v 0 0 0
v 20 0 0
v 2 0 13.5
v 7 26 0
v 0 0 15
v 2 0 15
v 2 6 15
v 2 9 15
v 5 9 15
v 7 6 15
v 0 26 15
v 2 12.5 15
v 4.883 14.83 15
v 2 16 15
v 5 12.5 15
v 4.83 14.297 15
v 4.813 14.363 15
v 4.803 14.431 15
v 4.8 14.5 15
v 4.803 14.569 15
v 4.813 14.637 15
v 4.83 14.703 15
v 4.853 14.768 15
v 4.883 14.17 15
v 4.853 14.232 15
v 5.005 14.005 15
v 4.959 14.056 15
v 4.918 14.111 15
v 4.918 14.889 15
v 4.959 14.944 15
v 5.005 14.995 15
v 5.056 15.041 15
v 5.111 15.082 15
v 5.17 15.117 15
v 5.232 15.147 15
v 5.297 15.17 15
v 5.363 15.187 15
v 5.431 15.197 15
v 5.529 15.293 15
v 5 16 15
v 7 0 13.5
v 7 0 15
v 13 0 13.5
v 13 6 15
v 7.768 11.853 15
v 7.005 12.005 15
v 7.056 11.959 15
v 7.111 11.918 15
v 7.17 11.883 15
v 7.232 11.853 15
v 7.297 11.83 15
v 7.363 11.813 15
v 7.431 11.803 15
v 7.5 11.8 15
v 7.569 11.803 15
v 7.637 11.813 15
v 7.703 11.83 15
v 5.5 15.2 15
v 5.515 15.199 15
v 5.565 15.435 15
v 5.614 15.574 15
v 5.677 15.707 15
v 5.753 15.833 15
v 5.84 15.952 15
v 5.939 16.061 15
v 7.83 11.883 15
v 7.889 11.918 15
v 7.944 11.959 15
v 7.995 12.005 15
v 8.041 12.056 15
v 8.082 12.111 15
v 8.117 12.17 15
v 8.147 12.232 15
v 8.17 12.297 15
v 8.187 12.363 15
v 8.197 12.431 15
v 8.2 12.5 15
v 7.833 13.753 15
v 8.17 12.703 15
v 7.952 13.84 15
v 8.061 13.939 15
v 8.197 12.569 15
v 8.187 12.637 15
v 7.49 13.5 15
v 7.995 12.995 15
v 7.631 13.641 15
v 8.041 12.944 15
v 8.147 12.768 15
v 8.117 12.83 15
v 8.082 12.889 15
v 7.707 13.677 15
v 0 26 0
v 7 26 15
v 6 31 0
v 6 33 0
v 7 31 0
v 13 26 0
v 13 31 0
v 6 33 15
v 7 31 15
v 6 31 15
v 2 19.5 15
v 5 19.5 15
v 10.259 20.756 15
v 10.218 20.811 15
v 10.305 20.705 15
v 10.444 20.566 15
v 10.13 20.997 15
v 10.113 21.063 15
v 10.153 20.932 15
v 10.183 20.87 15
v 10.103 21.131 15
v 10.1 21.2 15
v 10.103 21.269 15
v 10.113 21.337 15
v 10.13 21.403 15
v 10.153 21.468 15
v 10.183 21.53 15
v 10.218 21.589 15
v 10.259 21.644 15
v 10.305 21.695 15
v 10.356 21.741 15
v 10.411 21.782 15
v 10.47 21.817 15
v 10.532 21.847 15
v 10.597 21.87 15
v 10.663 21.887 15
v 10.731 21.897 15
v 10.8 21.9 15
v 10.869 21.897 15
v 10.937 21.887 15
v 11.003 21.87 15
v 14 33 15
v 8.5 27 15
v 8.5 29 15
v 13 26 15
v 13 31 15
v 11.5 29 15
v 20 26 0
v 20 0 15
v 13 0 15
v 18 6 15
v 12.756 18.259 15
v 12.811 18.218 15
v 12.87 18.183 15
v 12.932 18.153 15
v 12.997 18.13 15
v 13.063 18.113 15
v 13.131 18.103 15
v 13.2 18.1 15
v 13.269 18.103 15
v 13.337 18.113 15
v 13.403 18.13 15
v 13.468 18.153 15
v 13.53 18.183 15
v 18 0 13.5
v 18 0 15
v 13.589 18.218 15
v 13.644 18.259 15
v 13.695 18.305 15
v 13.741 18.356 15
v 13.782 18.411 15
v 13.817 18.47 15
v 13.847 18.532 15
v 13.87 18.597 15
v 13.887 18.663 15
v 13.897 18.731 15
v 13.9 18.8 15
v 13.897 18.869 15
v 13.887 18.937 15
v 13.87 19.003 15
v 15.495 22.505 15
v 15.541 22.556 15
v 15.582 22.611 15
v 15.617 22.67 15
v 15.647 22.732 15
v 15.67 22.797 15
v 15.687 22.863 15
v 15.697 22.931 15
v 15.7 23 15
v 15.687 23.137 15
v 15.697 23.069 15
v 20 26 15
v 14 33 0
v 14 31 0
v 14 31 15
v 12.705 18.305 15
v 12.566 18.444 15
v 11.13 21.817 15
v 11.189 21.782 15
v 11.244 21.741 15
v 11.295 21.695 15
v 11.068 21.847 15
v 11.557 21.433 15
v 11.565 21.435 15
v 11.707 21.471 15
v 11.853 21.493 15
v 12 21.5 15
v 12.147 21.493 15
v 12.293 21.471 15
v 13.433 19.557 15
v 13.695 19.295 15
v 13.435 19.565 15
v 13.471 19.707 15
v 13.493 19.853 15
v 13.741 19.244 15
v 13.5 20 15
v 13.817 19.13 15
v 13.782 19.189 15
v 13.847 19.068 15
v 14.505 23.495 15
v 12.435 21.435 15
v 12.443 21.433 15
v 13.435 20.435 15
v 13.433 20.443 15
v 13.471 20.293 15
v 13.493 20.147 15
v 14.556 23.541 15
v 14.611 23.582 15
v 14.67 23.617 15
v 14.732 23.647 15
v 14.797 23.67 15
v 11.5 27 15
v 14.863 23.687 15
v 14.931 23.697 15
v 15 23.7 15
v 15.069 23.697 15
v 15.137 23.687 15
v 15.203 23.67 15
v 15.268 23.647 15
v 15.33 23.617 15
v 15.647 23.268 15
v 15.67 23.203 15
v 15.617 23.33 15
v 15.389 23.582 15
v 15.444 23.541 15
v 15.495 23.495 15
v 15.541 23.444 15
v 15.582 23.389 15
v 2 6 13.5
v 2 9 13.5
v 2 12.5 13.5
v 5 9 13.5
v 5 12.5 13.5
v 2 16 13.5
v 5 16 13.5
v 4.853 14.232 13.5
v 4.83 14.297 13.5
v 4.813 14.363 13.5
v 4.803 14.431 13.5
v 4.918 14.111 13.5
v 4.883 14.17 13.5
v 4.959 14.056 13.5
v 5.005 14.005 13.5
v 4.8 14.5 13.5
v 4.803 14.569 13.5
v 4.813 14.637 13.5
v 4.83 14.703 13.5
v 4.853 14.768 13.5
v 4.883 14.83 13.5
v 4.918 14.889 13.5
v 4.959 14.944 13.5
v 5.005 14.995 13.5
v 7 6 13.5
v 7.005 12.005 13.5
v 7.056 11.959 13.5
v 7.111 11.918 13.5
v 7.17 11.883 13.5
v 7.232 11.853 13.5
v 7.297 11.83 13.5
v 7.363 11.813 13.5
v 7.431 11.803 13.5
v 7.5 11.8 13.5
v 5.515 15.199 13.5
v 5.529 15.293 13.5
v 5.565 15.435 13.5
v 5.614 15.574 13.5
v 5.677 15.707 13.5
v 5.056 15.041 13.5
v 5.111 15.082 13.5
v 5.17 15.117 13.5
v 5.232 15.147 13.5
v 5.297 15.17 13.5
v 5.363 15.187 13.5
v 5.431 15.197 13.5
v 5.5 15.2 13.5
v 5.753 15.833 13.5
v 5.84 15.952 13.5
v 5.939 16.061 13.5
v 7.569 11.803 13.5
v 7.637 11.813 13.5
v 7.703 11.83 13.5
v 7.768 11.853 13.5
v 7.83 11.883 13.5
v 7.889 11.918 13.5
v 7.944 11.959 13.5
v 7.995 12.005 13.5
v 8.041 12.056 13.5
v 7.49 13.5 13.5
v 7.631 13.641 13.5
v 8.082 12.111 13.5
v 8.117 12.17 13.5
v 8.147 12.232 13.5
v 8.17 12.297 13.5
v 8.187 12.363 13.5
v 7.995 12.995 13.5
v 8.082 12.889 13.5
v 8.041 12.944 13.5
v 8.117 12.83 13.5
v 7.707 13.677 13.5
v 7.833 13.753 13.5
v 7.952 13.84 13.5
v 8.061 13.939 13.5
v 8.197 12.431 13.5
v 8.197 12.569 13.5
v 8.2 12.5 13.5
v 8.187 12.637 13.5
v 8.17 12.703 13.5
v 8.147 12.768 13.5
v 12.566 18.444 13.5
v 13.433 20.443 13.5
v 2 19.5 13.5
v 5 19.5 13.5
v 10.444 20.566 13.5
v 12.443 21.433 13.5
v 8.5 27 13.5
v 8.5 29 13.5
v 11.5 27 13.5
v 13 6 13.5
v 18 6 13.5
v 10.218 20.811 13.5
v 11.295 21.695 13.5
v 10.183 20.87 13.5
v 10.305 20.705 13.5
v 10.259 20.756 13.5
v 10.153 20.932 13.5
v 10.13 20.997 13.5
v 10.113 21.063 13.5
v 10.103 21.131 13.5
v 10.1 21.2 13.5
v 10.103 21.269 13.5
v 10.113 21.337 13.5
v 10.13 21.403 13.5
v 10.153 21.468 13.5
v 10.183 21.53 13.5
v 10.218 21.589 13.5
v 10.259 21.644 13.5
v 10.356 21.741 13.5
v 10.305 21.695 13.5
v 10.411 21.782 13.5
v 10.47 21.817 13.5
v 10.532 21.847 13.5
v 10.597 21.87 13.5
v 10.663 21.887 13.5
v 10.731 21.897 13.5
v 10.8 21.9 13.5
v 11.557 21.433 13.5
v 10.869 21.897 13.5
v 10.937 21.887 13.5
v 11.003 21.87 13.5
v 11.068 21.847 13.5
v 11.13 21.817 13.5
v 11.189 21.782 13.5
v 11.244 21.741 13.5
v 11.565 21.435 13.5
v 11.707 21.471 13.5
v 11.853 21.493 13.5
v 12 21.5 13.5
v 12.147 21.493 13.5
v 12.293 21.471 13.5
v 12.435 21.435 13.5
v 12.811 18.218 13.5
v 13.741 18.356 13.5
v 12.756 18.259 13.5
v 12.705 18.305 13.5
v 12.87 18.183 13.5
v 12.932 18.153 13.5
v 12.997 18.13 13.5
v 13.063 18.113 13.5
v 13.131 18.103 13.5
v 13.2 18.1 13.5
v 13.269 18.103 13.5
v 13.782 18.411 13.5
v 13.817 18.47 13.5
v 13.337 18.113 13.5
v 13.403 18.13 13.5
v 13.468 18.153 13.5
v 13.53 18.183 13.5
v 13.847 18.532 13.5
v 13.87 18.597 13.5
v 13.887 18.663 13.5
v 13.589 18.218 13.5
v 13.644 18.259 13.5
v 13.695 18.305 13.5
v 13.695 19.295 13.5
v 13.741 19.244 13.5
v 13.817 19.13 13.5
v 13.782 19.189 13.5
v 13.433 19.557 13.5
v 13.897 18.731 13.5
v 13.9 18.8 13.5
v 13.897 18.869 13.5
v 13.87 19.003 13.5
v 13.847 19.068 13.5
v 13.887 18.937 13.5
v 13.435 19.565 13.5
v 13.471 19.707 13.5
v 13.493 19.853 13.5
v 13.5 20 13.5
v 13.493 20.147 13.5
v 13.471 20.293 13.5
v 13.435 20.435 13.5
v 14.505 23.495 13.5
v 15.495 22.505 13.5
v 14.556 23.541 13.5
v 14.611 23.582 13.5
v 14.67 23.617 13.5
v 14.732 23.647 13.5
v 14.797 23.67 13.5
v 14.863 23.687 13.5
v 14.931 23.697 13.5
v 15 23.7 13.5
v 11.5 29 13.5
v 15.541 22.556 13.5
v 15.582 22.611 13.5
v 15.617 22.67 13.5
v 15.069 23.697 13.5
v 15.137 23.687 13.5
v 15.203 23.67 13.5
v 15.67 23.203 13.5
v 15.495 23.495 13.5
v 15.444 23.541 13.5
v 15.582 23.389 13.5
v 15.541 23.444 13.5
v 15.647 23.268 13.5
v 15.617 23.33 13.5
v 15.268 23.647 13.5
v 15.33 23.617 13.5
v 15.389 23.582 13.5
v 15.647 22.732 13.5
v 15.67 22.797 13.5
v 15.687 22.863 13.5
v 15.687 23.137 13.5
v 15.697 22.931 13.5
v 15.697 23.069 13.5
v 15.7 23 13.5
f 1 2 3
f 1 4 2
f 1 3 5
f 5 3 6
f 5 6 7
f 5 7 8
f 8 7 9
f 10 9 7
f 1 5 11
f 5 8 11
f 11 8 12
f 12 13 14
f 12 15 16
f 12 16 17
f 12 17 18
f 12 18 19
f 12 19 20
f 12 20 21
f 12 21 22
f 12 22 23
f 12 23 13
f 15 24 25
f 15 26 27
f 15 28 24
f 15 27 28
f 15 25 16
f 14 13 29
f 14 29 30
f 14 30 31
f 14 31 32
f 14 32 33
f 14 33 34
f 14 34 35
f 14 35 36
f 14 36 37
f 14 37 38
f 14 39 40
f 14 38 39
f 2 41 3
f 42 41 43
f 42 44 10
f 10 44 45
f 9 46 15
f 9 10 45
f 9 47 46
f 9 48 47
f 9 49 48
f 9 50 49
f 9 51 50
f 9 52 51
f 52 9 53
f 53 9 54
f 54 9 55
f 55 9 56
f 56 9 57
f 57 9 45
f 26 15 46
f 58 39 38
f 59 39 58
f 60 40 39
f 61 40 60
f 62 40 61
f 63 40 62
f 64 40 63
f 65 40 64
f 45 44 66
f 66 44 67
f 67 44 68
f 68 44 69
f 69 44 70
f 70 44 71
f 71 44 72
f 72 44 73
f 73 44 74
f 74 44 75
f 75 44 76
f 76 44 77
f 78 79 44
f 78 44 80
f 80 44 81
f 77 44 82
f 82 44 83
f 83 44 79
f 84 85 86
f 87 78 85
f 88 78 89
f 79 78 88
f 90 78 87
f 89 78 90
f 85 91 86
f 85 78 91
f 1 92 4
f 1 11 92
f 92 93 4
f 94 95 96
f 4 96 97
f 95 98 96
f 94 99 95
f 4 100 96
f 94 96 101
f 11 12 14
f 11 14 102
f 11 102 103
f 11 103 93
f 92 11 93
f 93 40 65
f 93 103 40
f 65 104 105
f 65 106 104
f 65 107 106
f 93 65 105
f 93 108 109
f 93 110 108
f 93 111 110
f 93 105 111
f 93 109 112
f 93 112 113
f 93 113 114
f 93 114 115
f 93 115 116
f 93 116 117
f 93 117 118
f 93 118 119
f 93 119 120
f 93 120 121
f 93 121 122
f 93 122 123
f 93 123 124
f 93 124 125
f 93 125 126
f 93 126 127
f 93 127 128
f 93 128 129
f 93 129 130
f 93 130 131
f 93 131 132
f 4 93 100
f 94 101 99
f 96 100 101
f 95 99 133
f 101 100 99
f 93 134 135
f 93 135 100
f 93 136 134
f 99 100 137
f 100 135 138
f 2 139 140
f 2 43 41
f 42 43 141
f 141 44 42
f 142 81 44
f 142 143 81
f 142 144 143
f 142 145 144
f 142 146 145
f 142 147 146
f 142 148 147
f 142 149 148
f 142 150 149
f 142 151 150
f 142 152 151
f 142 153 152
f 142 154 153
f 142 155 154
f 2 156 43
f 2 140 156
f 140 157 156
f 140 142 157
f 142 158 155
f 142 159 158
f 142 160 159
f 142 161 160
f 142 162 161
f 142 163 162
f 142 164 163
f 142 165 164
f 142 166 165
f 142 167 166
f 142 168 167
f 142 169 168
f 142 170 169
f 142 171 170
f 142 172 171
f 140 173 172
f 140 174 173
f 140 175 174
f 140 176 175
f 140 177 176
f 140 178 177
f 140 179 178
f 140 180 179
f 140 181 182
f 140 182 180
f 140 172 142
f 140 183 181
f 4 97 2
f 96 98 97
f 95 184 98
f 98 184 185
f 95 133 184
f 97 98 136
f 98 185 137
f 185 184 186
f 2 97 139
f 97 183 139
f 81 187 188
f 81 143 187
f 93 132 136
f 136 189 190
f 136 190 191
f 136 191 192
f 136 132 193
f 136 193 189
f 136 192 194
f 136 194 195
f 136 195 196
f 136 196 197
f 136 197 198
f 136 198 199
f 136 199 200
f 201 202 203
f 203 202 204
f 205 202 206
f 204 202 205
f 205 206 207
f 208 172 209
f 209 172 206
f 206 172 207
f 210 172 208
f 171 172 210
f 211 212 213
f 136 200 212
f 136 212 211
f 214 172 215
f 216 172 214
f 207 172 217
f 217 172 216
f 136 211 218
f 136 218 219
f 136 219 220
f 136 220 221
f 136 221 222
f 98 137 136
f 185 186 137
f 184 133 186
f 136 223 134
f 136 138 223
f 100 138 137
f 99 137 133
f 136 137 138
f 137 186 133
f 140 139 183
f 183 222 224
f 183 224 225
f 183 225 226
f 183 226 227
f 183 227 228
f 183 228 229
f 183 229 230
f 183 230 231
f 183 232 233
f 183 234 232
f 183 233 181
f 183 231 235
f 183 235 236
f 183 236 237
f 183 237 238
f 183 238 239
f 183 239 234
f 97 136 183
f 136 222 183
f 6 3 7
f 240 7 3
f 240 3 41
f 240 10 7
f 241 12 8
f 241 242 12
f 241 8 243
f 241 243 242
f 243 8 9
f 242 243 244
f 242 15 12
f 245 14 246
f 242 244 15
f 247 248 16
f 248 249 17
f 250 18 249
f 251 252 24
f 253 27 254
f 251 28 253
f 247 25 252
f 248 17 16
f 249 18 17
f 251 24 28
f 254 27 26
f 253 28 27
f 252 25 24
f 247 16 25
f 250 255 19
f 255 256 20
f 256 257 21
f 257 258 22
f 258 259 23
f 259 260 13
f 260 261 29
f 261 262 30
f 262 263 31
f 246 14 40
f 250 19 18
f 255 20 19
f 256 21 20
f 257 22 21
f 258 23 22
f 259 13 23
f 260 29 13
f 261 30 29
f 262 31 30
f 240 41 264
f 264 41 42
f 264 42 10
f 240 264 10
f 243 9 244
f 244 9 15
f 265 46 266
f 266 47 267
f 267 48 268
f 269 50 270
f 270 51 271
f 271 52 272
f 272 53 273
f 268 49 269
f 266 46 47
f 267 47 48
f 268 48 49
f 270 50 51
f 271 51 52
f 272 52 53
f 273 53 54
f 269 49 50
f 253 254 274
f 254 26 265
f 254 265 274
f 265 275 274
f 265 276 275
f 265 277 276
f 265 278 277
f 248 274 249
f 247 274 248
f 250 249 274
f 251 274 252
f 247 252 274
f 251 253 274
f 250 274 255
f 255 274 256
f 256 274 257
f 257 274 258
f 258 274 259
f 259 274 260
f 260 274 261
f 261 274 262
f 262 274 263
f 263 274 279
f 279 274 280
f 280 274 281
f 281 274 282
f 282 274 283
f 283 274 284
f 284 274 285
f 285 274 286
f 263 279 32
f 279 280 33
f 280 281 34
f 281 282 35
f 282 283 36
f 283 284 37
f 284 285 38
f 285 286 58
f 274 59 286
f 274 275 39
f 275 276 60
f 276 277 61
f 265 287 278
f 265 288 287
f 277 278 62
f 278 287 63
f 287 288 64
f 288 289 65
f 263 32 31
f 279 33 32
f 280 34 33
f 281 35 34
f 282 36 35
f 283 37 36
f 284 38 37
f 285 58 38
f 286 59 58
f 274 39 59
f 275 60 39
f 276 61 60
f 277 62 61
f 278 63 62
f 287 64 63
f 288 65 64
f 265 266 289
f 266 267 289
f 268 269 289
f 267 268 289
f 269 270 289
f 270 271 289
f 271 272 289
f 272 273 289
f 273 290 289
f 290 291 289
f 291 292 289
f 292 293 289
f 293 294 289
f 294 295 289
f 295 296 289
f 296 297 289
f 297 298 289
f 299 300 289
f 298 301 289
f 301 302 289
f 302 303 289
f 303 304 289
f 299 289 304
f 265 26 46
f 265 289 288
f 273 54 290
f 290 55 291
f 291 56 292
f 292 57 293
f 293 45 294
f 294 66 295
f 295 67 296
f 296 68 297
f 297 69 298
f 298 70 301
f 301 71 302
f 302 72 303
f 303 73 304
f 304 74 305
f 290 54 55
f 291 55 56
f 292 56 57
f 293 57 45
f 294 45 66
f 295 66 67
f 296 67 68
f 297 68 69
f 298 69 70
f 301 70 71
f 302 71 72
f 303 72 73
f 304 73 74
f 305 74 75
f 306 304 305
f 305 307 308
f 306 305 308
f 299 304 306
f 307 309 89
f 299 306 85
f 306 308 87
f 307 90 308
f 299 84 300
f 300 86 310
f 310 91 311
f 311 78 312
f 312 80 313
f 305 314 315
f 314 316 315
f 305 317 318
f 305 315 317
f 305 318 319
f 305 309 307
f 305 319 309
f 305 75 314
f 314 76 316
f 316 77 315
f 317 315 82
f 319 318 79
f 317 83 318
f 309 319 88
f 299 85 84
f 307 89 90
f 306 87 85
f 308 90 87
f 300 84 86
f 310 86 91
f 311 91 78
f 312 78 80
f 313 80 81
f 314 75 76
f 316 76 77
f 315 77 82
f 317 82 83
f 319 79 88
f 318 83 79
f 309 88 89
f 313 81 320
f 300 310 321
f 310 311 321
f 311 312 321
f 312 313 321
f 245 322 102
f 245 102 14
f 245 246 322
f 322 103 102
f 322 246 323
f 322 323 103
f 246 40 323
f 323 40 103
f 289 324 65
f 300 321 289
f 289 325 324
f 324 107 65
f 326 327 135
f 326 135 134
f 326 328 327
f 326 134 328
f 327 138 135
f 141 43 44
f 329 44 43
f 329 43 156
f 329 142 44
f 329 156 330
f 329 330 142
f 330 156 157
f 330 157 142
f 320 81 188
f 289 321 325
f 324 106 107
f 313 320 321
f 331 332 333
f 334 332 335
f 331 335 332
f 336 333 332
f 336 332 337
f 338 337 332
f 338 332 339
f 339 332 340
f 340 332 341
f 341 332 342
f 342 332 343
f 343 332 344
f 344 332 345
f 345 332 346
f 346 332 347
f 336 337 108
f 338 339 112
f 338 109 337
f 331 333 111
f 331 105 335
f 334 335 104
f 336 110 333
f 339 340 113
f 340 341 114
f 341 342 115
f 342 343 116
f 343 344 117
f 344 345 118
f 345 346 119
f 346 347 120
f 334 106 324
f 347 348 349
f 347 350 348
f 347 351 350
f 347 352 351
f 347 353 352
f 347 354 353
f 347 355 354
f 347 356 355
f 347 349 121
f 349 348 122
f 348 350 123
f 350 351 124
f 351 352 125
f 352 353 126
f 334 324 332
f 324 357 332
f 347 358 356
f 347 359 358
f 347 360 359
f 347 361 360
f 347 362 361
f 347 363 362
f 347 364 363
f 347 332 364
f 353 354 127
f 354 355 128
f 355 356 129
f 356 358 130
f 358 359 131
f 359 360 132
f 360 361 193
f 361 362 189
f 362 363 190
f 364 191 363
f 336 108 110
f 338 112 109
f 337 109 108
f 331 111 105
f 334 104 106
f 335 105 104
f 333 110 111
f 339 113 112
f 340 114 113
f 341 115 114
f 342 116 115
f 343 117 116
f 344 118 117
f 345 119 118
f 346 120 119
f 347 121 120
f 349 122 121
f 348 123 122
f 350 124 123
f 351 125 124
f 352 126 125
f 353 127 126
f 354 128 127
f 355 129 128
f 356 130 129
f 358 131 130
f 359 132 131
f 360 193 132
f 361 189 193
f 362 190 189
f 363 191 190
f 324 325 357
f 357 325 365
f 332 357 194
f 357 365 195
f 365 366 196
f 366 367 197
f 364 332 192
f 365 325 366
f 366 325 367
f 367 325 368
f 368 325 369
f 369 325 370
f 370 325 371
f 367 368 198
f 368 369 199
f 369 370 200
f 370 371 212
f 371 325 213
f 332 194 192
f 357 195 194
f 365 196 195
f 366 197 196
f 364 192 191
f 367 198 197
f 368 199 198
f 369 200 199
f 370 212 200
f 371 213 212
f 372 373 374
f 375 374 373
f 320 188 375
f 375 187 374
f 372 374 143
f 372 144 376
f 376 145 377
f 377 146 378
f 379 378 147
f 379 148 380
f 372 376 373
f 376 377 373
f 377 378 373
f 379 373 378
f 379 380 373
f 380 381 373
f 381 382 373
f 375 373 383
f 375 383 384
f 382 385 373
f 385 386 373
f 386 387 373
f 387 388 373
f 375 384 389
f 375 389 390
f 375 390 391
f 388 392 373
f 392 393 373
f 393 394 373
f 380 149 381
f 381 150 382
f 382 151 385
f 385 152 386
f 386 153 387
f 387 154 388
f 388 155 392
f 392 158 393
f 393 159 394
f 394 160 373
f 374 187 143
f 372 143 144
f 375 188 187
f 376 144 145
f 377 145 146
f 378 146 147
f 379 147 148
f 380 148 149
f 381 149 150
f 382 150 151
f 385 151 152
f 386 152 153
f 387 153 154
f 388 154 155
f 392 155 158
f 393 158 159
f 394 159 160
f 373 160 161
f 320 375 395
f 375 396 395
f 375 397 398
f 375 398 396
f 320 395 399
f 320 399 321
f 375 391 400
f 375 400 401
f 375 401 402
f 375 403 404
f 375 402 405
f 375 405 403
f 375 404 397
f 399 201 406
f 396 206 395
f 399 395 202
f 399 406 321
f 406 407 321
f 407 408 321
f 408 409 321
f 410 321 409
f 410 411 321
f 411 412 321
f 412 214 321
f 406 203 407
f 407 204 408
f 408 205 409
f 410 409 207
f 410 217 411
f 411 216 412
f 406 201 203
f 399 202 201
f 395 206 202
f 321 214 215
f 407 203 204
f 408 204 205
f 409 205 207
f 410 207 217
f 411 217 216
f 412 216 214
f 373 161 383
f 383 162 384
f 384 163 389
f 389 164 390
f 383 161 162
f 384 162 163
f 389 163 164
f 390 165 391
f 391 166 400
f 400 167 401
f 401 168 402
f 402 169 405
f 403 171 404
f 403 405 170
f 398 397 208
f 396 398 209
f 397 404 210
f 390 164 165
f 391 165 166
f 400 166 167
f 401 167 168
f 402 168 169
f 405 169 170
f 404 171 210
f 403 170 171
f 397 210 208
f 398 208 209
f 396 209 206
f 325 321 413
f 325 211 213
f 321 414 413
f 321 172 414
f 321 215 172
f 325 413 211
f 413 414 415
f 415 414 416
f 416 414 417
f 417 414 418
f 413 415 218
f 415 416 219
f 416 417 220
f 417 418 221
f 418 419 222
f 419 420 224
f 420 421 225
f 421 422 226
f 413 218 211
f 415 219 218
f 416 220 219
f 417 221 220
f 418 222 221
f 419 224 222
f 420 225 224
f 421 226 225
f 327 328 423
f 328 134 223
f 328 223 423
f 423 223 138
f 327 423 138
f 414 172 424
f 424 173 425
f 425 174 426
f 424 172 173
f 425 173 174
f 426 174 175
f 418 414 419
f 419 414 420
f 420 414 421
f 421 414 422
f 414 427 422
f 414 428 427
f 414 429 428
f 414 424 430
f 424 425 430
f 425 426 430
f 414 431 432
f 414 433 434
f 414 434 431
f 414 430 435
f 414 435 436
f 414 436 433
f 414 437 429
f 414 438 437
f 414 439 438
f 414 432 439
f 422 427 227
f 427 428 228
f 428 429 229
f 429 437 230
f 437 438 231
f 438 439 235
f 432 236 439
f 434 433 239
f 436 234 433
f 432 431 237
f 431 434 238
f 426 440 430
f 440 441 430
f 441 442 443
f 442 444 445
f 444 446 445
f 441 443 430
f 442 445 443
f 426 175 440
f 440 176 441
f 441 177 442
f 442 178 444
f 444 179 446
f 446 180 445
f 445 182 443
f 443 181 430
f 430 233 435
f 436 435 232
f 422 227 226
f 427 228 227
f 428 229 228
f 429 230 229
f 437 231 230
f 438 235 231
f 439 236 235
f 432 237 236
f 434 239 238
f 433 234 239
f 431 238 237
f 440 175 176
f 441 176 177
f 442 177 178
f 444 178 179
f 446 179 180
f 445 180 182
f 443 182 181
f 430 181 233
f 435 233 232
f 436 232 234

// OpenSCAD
// Facade game piece in mm: X width, Y height, Z depth.
// Place Z=0 flat on the build plate; all recessed details are 1.5 mm deep.
$fn=64;
module rect(x,y,w,h){translate([x,y]) square([w,h]);}
module disk(x,y,r){translate([x,y]) circle(r=r);}
module line(a,b,w=1.5){hull(){translate(a) circle(d=w);translate(b) circle(d=w);}}
module path(points,w=1.5){for(i=[0:len(points)-2]) line(points[i],points[i+1],w);}
module cross_icon(x,y,size=6,bar=1.8){union(){rect(x-size/2,y-bar/2,size,bar);rect(x-bar/2,y-size/2,bar,size);}}
module tank(x,y,w,h){union(){rect(x,y,w,h-w/2);disk(x+w/2,y+h-w/2,w/2);}}
module ring(x,y,r,w=1.3){difference(){disk(x,y,r);disk(x,y,r-w);}}

module silhouette(){
union(){rect(0,0,20,26);rect(7,26,6,5);rect(6,31,8,2);}
}
module facade_recesses(){union(){
// A solid syringe outline remains clear at small print sizes.
path([[7,15],[12,20]],3);
line([5.5,14.5],[7.5,12.5],1.4);
line([6.5,13.5],[8,15],1.4);
line([10.8,21.2],[13.2,18.8],1.4);
line([12,20],[15,23],1.4);
rect(2,0,5,6);rect(13,0,5,6);
rect(2,9,3,3.5);rect(2,16,3,3.5);
rect(8.5,27,3,2);
}}
difference(){
 linear_extrude(height=15) silhouette();
 translate([0,0,13.5]) linear_extrude(height=2) facade_recesses();
}
